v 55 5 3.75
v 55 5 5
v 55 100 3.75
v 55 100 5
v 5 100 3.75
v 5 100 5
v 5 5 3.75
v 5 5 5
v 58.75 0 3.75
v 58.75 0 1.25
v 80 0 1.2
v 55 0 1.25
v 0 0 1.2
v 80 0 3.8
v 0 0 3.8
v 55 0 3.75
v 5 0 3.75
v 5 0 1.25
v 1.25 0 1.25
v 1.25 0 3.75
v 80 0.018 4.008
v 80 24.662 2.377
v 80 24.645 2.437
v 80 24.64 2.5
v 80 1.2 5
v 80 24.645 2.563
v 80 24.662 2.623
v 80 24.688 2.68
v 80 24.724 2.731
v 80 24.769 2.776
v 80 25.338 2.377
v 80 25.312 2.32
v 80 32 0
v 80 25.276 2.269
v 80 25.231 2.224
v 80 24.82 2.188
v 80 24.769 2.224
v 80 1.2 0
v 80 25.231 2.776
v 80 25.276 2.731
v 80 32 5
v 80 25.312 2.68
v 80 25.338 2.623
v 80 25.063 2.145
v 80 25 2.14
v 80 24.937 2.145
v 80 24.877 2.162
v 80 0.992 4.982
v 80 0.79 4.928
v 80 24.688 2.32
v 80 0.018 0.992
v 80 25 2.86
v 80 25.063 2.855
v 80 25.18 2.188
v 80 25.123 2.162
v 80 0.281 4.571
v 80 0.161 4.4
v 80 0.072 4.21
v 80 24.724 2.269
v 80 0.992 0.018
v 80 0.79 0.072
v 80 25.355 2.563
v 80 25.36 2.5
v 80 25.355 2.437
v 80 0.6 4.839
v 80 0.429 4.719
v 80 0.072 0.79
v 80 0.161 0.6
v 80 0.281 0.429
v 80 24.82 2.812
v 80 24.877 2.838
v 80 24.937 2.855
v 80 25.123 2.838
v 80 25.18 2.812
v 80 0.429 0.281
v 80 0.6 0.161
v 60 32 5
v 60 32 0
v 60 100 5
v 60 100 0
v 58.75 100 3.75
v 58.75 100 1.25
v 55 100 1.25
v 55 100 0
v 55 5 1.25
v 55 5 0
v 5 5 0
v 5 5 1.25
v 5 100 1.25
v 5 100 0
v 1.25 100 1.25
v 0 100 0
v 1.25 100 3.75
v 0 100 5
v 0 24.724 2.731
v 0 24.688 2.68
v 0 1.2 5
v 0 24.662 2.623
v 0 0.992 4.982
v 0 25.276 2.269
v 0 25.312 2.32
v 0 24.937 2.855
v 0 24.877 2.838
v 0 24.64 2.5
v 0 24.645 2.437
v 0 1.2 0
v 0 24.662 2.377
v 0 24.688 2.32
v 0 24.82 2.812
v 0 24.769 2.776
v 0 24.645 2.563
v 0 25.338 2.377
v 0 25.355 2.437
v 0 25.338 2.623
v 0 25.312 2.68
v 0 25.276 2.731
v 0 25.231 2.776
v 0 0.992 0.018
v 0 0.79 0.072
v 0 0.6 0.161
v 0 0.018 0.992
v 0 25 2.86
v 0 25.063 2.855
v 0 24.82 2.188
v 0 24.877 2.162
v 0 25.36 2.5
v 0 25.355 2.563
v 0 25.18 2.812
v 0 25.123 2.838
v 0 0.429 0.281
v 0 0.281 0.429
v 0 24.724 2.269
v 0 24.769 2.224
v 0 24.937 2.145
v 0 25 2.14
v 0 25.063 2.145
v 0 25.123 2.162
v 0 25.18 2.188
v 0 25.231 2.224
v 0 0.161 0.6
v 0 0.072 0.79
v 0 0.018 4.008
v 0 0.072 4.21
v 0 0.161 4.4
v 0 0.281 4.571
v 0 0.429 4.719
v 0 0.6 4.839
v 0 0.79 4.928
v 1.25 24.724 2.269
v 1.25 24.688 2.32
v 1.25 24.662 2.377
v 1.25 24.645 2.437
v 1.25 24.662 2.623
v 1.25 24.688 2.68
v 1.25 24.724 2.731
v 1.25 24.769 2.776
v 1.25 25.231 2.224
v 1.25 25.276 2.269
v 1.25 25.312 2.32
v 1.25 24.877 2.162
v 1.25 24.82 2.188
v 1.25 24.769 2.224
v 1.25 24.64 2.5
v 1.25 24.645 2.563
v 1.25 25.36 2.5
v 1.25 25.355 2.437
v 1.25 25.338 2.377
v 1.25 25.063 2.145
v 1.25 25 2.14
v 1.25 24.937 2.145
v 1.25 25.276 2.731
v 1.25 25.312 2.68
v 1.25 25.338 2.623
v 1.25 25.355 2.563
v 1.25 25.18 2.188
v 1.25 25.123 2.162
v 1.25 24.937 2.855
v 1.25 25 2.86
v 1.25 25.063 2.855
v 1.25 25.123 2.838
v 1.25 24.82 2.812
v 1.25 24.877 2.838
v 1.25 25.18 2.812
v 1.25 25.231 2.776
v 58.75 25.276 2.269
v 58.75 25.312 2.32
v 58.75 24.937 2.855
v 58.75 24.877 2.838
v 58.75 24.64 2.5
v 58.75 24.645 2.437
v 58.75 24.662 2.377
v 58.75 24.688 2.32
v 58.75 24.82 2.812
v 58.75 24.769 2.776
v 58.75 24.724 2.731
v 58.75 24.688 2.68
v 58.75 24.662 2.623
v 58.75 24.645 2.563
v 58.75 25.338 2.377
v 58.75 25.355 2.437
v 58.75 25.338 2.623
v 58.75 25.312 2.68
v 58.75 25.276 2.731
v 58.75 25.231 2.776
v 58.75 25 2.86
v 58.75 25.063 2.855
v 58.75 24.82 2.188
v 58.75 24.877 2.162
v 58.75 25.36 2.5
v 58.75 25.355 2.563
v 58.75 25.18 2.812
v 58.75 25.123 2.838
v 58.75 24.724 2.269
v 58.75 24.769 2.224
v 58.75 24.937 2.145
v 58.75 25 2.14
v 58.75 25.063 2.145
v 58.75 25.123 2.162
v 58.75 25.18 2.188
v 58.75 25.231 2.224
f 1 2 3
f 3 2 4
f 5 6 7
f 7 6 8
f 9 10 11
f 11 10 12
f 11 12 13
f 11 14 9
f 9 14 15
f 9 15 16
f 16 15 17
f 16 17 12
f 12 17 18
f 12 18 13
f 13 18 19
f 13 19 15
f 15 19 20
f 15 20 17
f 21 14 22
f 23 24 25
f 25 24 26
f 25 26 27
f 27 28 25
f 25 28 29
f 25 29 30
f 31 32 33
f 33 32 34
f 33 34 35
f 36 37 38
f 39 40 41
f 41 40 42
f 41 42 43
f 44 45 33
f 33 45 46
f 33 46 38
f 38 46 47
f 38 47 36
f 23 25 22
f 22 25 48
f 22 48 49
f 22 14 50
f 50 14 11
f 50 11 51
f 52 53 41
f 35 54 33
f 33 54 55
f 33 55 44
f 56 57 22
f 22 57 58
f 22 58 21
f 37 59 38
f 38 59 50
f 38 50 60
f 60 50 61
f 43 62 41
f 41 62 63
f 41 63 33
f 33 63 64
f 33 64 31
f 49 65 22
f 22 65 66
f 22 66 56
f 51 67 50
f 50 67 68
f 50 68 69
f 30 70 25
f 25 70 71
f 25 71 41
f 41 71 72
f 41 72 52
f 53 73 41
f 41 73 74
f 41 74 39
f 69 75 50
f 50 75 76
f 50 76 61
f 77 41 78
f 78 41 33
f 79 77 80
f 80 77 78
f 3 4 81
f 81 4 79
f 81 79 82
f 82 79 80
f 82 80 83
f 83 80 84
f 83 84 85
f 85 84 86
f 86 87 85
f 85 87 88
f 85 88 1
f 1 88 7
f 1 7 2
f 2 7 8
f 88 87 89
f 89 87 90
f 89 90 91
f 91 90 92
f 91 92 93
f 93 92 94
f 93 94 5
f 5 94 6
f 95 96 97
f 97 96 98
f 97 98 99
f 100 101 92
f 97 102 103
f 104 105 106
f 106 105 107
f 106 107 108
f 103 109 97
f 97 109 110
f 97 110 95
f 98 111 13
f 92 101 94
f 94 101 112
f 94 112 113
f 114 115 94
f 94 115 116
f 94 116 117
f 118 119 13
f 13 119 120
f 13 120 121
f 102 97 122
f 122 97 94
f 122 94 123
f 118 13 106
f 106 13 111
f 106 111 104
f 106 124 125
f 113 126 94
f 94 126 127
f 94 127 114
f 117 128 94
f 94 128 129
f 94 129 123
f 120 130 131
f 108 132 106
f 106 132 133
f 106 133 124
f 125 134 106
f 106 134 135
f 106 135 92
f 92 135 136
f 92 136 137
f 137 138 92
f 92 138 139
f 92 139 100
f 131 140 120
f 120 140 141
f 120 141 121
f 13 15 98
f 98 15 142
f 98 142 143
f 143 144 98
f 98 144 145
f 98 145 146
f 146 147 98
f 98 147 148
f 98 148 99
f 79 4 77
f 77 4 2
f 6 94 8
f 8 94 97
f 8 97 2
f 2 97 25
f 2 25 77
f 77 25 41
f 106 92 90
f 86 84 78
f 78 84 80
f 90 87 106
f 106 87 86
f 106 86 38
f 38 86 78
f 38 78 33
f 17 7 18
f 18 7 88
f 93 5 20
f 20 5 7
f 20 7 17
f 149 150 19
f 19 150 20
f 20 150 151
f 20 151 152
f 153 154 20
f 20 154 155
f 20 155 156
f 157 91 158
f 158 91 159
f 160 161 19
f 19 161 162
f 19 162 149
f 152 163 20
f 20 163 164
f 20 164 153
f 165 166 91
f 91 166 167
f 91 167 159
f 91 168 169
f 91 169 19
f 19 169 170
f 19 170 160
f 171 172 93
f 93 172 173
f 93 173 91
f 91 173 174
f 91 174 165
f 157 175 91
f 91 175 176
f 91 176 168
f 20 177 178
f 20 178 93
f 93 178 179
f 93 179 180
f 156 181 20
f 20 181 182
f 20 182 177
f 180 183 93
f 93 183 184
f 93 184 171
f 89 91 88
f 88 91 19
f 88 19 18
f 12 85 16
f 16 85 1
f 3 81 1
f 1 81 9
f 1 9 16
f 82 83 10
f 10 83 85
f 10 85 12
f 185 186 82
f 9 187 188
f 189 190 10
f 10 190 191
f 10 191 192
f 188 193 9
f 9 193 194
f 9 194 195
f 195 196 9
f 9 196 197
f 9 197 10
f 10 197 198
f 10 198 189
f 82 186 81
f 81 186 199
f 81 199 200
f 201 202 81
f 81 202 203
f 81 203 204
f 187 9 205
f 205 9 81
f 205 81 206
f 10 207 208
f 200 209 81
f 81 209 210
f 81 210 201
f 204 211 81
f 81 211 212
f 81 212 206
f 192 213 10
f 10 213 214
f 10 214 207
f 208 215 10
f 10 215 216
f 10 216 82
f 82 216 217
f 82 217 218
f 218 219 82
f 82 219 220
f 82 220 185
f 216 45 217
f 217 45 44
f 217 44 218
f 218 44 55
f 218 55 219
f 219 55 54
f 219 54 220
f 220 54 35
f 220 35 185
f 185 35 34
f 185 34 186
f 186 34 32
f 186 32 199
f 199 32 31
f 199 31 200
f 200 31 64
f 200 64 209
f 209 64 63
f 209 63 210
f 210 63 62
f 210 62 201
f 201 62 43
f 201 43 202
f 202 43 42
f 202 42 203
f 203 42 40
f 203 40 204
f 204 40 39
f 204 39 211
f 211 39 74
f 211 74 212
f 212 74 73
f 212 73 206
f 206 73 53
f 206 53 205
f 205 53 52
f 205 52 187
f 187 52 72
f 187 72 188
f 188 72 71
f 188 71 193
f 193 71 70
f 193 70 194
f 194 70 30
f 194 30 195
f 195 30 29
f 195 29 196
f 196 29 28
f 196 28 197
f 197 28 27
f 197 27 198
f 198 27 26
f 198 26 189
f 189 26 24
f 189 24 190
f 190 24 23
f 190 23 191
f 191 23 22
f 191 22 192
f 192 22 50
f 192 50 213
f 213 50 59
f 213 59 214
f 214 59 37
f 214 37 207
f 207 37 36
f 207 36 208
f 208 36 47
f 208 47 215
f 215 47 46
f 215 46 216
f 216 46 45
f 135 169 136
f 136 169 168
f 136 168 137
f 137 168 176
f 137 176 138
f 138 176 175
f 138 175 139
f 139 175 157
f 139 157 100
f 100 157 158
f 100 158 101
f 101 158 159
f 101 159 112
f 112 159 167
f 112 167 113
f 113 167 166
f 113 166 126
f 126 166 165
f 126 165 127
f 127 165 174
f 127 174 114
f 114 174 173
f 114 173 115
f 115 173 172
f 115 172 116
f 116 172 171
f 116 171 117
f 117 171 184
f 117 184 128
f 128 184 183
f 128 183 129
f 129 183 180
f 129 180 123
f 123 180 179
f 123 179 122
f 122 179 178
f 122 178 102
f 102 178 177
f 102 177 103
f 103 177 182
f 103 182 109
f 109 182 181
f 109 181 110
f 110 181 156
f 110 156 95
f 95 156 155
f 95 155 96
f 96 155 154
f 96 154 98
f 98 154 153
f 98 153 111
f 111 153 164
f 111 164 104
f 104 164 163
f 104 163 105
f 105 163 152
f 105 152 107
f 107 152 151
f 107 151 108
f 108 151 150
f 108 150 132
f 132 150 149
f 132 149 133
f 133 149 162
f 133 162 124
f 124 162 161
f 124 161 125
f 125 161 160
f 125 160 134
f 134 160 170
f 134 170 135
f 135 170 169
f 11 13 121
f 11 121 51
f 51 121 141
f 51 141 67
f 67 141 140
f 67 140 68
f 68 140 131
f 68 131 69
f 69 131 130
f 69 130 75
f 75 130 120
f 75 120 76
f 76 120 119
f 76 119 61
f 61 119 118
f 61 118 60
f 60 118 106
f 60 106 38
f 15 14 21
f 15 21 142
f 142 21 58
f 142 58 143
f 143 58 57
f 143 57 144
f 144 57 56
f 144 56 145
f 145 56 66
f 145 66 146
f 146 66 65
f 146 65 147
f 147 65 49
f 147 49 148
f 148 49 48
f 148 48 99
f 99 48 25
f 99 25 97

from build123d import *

# Parameters (mm, degrees)
BOSS_EXTRUDE1_DEPTH = 5
SKETCH4_W           = 3.75
SKETCH4_H           = 2.5
CUT_EXTRUDE2_DEPTH  = 101
SKETCH5_R           = 0.36
CUT_EXTRUDE3_DEPTH  = 81
FILLET1_R           = 1.2
FILLET2_R           = 1.2


with BuildPart() as part:
    # Sketch1 → Boss-Extrude1 (new body)
    with BuildSketch(Plane.XY):
        Polygon((0, 0), (0, 100), (5, 100), (5, 5), (55, 5), (55, 100), (60, 100), (60, 50), (60, 32), (80, 32), (80, 0), align=None)
    extrude(amount=BOSS_EXTRUDE1_DEPTH)

    # Sketch4 → Cut-Extrude2 (cut, through all)
    with BuildSketch(Plane(origin=(0, 100, 0), x_dir=(1, 0, 0), z_dir=(0, 1, 0))):
        with Locations((56.875, -2.5)):
            Rectangle(SKETCH4_W, SKETCH4_H)
        with Locations((3.125, -2.5)):
            Rectangle(SKETCH4_W, SKETCH4_H)
    extrude(amount=-CUT_EXTRUDE2_DEPTH, mode=Mode.SUBTRACT)

    # Sketch5 → Cut-Extrude3 (cut, through all)
    with BuildSketch(Plane(origin=(80, 0, 0), x_dir=(0, 0, -1), z_dir=(1, 0, 0))):
        with Locations((-2.5, 25)):
            Circle(SKETCH5_R)
    extrude(amount=-CUT_EXTRUDE3_DEPTH, mode=Mode.SUBTRACT)

    # Fillet1
    fillet1_edges = [part.edges().sort_by_distance(p)[0] for p in [
        (40, 0, 0),
    ]]
    fillet(fillet1_edges, radius=FILLET1_R)

    # Fillet2
    fillet2_edges = [part.edges().sort_by_distance(p)[0] for p in [
        (40, 0, 5),
    ]]
    fillet(fillet2_edges, radius=FILLET2_R)


solid = part.part
